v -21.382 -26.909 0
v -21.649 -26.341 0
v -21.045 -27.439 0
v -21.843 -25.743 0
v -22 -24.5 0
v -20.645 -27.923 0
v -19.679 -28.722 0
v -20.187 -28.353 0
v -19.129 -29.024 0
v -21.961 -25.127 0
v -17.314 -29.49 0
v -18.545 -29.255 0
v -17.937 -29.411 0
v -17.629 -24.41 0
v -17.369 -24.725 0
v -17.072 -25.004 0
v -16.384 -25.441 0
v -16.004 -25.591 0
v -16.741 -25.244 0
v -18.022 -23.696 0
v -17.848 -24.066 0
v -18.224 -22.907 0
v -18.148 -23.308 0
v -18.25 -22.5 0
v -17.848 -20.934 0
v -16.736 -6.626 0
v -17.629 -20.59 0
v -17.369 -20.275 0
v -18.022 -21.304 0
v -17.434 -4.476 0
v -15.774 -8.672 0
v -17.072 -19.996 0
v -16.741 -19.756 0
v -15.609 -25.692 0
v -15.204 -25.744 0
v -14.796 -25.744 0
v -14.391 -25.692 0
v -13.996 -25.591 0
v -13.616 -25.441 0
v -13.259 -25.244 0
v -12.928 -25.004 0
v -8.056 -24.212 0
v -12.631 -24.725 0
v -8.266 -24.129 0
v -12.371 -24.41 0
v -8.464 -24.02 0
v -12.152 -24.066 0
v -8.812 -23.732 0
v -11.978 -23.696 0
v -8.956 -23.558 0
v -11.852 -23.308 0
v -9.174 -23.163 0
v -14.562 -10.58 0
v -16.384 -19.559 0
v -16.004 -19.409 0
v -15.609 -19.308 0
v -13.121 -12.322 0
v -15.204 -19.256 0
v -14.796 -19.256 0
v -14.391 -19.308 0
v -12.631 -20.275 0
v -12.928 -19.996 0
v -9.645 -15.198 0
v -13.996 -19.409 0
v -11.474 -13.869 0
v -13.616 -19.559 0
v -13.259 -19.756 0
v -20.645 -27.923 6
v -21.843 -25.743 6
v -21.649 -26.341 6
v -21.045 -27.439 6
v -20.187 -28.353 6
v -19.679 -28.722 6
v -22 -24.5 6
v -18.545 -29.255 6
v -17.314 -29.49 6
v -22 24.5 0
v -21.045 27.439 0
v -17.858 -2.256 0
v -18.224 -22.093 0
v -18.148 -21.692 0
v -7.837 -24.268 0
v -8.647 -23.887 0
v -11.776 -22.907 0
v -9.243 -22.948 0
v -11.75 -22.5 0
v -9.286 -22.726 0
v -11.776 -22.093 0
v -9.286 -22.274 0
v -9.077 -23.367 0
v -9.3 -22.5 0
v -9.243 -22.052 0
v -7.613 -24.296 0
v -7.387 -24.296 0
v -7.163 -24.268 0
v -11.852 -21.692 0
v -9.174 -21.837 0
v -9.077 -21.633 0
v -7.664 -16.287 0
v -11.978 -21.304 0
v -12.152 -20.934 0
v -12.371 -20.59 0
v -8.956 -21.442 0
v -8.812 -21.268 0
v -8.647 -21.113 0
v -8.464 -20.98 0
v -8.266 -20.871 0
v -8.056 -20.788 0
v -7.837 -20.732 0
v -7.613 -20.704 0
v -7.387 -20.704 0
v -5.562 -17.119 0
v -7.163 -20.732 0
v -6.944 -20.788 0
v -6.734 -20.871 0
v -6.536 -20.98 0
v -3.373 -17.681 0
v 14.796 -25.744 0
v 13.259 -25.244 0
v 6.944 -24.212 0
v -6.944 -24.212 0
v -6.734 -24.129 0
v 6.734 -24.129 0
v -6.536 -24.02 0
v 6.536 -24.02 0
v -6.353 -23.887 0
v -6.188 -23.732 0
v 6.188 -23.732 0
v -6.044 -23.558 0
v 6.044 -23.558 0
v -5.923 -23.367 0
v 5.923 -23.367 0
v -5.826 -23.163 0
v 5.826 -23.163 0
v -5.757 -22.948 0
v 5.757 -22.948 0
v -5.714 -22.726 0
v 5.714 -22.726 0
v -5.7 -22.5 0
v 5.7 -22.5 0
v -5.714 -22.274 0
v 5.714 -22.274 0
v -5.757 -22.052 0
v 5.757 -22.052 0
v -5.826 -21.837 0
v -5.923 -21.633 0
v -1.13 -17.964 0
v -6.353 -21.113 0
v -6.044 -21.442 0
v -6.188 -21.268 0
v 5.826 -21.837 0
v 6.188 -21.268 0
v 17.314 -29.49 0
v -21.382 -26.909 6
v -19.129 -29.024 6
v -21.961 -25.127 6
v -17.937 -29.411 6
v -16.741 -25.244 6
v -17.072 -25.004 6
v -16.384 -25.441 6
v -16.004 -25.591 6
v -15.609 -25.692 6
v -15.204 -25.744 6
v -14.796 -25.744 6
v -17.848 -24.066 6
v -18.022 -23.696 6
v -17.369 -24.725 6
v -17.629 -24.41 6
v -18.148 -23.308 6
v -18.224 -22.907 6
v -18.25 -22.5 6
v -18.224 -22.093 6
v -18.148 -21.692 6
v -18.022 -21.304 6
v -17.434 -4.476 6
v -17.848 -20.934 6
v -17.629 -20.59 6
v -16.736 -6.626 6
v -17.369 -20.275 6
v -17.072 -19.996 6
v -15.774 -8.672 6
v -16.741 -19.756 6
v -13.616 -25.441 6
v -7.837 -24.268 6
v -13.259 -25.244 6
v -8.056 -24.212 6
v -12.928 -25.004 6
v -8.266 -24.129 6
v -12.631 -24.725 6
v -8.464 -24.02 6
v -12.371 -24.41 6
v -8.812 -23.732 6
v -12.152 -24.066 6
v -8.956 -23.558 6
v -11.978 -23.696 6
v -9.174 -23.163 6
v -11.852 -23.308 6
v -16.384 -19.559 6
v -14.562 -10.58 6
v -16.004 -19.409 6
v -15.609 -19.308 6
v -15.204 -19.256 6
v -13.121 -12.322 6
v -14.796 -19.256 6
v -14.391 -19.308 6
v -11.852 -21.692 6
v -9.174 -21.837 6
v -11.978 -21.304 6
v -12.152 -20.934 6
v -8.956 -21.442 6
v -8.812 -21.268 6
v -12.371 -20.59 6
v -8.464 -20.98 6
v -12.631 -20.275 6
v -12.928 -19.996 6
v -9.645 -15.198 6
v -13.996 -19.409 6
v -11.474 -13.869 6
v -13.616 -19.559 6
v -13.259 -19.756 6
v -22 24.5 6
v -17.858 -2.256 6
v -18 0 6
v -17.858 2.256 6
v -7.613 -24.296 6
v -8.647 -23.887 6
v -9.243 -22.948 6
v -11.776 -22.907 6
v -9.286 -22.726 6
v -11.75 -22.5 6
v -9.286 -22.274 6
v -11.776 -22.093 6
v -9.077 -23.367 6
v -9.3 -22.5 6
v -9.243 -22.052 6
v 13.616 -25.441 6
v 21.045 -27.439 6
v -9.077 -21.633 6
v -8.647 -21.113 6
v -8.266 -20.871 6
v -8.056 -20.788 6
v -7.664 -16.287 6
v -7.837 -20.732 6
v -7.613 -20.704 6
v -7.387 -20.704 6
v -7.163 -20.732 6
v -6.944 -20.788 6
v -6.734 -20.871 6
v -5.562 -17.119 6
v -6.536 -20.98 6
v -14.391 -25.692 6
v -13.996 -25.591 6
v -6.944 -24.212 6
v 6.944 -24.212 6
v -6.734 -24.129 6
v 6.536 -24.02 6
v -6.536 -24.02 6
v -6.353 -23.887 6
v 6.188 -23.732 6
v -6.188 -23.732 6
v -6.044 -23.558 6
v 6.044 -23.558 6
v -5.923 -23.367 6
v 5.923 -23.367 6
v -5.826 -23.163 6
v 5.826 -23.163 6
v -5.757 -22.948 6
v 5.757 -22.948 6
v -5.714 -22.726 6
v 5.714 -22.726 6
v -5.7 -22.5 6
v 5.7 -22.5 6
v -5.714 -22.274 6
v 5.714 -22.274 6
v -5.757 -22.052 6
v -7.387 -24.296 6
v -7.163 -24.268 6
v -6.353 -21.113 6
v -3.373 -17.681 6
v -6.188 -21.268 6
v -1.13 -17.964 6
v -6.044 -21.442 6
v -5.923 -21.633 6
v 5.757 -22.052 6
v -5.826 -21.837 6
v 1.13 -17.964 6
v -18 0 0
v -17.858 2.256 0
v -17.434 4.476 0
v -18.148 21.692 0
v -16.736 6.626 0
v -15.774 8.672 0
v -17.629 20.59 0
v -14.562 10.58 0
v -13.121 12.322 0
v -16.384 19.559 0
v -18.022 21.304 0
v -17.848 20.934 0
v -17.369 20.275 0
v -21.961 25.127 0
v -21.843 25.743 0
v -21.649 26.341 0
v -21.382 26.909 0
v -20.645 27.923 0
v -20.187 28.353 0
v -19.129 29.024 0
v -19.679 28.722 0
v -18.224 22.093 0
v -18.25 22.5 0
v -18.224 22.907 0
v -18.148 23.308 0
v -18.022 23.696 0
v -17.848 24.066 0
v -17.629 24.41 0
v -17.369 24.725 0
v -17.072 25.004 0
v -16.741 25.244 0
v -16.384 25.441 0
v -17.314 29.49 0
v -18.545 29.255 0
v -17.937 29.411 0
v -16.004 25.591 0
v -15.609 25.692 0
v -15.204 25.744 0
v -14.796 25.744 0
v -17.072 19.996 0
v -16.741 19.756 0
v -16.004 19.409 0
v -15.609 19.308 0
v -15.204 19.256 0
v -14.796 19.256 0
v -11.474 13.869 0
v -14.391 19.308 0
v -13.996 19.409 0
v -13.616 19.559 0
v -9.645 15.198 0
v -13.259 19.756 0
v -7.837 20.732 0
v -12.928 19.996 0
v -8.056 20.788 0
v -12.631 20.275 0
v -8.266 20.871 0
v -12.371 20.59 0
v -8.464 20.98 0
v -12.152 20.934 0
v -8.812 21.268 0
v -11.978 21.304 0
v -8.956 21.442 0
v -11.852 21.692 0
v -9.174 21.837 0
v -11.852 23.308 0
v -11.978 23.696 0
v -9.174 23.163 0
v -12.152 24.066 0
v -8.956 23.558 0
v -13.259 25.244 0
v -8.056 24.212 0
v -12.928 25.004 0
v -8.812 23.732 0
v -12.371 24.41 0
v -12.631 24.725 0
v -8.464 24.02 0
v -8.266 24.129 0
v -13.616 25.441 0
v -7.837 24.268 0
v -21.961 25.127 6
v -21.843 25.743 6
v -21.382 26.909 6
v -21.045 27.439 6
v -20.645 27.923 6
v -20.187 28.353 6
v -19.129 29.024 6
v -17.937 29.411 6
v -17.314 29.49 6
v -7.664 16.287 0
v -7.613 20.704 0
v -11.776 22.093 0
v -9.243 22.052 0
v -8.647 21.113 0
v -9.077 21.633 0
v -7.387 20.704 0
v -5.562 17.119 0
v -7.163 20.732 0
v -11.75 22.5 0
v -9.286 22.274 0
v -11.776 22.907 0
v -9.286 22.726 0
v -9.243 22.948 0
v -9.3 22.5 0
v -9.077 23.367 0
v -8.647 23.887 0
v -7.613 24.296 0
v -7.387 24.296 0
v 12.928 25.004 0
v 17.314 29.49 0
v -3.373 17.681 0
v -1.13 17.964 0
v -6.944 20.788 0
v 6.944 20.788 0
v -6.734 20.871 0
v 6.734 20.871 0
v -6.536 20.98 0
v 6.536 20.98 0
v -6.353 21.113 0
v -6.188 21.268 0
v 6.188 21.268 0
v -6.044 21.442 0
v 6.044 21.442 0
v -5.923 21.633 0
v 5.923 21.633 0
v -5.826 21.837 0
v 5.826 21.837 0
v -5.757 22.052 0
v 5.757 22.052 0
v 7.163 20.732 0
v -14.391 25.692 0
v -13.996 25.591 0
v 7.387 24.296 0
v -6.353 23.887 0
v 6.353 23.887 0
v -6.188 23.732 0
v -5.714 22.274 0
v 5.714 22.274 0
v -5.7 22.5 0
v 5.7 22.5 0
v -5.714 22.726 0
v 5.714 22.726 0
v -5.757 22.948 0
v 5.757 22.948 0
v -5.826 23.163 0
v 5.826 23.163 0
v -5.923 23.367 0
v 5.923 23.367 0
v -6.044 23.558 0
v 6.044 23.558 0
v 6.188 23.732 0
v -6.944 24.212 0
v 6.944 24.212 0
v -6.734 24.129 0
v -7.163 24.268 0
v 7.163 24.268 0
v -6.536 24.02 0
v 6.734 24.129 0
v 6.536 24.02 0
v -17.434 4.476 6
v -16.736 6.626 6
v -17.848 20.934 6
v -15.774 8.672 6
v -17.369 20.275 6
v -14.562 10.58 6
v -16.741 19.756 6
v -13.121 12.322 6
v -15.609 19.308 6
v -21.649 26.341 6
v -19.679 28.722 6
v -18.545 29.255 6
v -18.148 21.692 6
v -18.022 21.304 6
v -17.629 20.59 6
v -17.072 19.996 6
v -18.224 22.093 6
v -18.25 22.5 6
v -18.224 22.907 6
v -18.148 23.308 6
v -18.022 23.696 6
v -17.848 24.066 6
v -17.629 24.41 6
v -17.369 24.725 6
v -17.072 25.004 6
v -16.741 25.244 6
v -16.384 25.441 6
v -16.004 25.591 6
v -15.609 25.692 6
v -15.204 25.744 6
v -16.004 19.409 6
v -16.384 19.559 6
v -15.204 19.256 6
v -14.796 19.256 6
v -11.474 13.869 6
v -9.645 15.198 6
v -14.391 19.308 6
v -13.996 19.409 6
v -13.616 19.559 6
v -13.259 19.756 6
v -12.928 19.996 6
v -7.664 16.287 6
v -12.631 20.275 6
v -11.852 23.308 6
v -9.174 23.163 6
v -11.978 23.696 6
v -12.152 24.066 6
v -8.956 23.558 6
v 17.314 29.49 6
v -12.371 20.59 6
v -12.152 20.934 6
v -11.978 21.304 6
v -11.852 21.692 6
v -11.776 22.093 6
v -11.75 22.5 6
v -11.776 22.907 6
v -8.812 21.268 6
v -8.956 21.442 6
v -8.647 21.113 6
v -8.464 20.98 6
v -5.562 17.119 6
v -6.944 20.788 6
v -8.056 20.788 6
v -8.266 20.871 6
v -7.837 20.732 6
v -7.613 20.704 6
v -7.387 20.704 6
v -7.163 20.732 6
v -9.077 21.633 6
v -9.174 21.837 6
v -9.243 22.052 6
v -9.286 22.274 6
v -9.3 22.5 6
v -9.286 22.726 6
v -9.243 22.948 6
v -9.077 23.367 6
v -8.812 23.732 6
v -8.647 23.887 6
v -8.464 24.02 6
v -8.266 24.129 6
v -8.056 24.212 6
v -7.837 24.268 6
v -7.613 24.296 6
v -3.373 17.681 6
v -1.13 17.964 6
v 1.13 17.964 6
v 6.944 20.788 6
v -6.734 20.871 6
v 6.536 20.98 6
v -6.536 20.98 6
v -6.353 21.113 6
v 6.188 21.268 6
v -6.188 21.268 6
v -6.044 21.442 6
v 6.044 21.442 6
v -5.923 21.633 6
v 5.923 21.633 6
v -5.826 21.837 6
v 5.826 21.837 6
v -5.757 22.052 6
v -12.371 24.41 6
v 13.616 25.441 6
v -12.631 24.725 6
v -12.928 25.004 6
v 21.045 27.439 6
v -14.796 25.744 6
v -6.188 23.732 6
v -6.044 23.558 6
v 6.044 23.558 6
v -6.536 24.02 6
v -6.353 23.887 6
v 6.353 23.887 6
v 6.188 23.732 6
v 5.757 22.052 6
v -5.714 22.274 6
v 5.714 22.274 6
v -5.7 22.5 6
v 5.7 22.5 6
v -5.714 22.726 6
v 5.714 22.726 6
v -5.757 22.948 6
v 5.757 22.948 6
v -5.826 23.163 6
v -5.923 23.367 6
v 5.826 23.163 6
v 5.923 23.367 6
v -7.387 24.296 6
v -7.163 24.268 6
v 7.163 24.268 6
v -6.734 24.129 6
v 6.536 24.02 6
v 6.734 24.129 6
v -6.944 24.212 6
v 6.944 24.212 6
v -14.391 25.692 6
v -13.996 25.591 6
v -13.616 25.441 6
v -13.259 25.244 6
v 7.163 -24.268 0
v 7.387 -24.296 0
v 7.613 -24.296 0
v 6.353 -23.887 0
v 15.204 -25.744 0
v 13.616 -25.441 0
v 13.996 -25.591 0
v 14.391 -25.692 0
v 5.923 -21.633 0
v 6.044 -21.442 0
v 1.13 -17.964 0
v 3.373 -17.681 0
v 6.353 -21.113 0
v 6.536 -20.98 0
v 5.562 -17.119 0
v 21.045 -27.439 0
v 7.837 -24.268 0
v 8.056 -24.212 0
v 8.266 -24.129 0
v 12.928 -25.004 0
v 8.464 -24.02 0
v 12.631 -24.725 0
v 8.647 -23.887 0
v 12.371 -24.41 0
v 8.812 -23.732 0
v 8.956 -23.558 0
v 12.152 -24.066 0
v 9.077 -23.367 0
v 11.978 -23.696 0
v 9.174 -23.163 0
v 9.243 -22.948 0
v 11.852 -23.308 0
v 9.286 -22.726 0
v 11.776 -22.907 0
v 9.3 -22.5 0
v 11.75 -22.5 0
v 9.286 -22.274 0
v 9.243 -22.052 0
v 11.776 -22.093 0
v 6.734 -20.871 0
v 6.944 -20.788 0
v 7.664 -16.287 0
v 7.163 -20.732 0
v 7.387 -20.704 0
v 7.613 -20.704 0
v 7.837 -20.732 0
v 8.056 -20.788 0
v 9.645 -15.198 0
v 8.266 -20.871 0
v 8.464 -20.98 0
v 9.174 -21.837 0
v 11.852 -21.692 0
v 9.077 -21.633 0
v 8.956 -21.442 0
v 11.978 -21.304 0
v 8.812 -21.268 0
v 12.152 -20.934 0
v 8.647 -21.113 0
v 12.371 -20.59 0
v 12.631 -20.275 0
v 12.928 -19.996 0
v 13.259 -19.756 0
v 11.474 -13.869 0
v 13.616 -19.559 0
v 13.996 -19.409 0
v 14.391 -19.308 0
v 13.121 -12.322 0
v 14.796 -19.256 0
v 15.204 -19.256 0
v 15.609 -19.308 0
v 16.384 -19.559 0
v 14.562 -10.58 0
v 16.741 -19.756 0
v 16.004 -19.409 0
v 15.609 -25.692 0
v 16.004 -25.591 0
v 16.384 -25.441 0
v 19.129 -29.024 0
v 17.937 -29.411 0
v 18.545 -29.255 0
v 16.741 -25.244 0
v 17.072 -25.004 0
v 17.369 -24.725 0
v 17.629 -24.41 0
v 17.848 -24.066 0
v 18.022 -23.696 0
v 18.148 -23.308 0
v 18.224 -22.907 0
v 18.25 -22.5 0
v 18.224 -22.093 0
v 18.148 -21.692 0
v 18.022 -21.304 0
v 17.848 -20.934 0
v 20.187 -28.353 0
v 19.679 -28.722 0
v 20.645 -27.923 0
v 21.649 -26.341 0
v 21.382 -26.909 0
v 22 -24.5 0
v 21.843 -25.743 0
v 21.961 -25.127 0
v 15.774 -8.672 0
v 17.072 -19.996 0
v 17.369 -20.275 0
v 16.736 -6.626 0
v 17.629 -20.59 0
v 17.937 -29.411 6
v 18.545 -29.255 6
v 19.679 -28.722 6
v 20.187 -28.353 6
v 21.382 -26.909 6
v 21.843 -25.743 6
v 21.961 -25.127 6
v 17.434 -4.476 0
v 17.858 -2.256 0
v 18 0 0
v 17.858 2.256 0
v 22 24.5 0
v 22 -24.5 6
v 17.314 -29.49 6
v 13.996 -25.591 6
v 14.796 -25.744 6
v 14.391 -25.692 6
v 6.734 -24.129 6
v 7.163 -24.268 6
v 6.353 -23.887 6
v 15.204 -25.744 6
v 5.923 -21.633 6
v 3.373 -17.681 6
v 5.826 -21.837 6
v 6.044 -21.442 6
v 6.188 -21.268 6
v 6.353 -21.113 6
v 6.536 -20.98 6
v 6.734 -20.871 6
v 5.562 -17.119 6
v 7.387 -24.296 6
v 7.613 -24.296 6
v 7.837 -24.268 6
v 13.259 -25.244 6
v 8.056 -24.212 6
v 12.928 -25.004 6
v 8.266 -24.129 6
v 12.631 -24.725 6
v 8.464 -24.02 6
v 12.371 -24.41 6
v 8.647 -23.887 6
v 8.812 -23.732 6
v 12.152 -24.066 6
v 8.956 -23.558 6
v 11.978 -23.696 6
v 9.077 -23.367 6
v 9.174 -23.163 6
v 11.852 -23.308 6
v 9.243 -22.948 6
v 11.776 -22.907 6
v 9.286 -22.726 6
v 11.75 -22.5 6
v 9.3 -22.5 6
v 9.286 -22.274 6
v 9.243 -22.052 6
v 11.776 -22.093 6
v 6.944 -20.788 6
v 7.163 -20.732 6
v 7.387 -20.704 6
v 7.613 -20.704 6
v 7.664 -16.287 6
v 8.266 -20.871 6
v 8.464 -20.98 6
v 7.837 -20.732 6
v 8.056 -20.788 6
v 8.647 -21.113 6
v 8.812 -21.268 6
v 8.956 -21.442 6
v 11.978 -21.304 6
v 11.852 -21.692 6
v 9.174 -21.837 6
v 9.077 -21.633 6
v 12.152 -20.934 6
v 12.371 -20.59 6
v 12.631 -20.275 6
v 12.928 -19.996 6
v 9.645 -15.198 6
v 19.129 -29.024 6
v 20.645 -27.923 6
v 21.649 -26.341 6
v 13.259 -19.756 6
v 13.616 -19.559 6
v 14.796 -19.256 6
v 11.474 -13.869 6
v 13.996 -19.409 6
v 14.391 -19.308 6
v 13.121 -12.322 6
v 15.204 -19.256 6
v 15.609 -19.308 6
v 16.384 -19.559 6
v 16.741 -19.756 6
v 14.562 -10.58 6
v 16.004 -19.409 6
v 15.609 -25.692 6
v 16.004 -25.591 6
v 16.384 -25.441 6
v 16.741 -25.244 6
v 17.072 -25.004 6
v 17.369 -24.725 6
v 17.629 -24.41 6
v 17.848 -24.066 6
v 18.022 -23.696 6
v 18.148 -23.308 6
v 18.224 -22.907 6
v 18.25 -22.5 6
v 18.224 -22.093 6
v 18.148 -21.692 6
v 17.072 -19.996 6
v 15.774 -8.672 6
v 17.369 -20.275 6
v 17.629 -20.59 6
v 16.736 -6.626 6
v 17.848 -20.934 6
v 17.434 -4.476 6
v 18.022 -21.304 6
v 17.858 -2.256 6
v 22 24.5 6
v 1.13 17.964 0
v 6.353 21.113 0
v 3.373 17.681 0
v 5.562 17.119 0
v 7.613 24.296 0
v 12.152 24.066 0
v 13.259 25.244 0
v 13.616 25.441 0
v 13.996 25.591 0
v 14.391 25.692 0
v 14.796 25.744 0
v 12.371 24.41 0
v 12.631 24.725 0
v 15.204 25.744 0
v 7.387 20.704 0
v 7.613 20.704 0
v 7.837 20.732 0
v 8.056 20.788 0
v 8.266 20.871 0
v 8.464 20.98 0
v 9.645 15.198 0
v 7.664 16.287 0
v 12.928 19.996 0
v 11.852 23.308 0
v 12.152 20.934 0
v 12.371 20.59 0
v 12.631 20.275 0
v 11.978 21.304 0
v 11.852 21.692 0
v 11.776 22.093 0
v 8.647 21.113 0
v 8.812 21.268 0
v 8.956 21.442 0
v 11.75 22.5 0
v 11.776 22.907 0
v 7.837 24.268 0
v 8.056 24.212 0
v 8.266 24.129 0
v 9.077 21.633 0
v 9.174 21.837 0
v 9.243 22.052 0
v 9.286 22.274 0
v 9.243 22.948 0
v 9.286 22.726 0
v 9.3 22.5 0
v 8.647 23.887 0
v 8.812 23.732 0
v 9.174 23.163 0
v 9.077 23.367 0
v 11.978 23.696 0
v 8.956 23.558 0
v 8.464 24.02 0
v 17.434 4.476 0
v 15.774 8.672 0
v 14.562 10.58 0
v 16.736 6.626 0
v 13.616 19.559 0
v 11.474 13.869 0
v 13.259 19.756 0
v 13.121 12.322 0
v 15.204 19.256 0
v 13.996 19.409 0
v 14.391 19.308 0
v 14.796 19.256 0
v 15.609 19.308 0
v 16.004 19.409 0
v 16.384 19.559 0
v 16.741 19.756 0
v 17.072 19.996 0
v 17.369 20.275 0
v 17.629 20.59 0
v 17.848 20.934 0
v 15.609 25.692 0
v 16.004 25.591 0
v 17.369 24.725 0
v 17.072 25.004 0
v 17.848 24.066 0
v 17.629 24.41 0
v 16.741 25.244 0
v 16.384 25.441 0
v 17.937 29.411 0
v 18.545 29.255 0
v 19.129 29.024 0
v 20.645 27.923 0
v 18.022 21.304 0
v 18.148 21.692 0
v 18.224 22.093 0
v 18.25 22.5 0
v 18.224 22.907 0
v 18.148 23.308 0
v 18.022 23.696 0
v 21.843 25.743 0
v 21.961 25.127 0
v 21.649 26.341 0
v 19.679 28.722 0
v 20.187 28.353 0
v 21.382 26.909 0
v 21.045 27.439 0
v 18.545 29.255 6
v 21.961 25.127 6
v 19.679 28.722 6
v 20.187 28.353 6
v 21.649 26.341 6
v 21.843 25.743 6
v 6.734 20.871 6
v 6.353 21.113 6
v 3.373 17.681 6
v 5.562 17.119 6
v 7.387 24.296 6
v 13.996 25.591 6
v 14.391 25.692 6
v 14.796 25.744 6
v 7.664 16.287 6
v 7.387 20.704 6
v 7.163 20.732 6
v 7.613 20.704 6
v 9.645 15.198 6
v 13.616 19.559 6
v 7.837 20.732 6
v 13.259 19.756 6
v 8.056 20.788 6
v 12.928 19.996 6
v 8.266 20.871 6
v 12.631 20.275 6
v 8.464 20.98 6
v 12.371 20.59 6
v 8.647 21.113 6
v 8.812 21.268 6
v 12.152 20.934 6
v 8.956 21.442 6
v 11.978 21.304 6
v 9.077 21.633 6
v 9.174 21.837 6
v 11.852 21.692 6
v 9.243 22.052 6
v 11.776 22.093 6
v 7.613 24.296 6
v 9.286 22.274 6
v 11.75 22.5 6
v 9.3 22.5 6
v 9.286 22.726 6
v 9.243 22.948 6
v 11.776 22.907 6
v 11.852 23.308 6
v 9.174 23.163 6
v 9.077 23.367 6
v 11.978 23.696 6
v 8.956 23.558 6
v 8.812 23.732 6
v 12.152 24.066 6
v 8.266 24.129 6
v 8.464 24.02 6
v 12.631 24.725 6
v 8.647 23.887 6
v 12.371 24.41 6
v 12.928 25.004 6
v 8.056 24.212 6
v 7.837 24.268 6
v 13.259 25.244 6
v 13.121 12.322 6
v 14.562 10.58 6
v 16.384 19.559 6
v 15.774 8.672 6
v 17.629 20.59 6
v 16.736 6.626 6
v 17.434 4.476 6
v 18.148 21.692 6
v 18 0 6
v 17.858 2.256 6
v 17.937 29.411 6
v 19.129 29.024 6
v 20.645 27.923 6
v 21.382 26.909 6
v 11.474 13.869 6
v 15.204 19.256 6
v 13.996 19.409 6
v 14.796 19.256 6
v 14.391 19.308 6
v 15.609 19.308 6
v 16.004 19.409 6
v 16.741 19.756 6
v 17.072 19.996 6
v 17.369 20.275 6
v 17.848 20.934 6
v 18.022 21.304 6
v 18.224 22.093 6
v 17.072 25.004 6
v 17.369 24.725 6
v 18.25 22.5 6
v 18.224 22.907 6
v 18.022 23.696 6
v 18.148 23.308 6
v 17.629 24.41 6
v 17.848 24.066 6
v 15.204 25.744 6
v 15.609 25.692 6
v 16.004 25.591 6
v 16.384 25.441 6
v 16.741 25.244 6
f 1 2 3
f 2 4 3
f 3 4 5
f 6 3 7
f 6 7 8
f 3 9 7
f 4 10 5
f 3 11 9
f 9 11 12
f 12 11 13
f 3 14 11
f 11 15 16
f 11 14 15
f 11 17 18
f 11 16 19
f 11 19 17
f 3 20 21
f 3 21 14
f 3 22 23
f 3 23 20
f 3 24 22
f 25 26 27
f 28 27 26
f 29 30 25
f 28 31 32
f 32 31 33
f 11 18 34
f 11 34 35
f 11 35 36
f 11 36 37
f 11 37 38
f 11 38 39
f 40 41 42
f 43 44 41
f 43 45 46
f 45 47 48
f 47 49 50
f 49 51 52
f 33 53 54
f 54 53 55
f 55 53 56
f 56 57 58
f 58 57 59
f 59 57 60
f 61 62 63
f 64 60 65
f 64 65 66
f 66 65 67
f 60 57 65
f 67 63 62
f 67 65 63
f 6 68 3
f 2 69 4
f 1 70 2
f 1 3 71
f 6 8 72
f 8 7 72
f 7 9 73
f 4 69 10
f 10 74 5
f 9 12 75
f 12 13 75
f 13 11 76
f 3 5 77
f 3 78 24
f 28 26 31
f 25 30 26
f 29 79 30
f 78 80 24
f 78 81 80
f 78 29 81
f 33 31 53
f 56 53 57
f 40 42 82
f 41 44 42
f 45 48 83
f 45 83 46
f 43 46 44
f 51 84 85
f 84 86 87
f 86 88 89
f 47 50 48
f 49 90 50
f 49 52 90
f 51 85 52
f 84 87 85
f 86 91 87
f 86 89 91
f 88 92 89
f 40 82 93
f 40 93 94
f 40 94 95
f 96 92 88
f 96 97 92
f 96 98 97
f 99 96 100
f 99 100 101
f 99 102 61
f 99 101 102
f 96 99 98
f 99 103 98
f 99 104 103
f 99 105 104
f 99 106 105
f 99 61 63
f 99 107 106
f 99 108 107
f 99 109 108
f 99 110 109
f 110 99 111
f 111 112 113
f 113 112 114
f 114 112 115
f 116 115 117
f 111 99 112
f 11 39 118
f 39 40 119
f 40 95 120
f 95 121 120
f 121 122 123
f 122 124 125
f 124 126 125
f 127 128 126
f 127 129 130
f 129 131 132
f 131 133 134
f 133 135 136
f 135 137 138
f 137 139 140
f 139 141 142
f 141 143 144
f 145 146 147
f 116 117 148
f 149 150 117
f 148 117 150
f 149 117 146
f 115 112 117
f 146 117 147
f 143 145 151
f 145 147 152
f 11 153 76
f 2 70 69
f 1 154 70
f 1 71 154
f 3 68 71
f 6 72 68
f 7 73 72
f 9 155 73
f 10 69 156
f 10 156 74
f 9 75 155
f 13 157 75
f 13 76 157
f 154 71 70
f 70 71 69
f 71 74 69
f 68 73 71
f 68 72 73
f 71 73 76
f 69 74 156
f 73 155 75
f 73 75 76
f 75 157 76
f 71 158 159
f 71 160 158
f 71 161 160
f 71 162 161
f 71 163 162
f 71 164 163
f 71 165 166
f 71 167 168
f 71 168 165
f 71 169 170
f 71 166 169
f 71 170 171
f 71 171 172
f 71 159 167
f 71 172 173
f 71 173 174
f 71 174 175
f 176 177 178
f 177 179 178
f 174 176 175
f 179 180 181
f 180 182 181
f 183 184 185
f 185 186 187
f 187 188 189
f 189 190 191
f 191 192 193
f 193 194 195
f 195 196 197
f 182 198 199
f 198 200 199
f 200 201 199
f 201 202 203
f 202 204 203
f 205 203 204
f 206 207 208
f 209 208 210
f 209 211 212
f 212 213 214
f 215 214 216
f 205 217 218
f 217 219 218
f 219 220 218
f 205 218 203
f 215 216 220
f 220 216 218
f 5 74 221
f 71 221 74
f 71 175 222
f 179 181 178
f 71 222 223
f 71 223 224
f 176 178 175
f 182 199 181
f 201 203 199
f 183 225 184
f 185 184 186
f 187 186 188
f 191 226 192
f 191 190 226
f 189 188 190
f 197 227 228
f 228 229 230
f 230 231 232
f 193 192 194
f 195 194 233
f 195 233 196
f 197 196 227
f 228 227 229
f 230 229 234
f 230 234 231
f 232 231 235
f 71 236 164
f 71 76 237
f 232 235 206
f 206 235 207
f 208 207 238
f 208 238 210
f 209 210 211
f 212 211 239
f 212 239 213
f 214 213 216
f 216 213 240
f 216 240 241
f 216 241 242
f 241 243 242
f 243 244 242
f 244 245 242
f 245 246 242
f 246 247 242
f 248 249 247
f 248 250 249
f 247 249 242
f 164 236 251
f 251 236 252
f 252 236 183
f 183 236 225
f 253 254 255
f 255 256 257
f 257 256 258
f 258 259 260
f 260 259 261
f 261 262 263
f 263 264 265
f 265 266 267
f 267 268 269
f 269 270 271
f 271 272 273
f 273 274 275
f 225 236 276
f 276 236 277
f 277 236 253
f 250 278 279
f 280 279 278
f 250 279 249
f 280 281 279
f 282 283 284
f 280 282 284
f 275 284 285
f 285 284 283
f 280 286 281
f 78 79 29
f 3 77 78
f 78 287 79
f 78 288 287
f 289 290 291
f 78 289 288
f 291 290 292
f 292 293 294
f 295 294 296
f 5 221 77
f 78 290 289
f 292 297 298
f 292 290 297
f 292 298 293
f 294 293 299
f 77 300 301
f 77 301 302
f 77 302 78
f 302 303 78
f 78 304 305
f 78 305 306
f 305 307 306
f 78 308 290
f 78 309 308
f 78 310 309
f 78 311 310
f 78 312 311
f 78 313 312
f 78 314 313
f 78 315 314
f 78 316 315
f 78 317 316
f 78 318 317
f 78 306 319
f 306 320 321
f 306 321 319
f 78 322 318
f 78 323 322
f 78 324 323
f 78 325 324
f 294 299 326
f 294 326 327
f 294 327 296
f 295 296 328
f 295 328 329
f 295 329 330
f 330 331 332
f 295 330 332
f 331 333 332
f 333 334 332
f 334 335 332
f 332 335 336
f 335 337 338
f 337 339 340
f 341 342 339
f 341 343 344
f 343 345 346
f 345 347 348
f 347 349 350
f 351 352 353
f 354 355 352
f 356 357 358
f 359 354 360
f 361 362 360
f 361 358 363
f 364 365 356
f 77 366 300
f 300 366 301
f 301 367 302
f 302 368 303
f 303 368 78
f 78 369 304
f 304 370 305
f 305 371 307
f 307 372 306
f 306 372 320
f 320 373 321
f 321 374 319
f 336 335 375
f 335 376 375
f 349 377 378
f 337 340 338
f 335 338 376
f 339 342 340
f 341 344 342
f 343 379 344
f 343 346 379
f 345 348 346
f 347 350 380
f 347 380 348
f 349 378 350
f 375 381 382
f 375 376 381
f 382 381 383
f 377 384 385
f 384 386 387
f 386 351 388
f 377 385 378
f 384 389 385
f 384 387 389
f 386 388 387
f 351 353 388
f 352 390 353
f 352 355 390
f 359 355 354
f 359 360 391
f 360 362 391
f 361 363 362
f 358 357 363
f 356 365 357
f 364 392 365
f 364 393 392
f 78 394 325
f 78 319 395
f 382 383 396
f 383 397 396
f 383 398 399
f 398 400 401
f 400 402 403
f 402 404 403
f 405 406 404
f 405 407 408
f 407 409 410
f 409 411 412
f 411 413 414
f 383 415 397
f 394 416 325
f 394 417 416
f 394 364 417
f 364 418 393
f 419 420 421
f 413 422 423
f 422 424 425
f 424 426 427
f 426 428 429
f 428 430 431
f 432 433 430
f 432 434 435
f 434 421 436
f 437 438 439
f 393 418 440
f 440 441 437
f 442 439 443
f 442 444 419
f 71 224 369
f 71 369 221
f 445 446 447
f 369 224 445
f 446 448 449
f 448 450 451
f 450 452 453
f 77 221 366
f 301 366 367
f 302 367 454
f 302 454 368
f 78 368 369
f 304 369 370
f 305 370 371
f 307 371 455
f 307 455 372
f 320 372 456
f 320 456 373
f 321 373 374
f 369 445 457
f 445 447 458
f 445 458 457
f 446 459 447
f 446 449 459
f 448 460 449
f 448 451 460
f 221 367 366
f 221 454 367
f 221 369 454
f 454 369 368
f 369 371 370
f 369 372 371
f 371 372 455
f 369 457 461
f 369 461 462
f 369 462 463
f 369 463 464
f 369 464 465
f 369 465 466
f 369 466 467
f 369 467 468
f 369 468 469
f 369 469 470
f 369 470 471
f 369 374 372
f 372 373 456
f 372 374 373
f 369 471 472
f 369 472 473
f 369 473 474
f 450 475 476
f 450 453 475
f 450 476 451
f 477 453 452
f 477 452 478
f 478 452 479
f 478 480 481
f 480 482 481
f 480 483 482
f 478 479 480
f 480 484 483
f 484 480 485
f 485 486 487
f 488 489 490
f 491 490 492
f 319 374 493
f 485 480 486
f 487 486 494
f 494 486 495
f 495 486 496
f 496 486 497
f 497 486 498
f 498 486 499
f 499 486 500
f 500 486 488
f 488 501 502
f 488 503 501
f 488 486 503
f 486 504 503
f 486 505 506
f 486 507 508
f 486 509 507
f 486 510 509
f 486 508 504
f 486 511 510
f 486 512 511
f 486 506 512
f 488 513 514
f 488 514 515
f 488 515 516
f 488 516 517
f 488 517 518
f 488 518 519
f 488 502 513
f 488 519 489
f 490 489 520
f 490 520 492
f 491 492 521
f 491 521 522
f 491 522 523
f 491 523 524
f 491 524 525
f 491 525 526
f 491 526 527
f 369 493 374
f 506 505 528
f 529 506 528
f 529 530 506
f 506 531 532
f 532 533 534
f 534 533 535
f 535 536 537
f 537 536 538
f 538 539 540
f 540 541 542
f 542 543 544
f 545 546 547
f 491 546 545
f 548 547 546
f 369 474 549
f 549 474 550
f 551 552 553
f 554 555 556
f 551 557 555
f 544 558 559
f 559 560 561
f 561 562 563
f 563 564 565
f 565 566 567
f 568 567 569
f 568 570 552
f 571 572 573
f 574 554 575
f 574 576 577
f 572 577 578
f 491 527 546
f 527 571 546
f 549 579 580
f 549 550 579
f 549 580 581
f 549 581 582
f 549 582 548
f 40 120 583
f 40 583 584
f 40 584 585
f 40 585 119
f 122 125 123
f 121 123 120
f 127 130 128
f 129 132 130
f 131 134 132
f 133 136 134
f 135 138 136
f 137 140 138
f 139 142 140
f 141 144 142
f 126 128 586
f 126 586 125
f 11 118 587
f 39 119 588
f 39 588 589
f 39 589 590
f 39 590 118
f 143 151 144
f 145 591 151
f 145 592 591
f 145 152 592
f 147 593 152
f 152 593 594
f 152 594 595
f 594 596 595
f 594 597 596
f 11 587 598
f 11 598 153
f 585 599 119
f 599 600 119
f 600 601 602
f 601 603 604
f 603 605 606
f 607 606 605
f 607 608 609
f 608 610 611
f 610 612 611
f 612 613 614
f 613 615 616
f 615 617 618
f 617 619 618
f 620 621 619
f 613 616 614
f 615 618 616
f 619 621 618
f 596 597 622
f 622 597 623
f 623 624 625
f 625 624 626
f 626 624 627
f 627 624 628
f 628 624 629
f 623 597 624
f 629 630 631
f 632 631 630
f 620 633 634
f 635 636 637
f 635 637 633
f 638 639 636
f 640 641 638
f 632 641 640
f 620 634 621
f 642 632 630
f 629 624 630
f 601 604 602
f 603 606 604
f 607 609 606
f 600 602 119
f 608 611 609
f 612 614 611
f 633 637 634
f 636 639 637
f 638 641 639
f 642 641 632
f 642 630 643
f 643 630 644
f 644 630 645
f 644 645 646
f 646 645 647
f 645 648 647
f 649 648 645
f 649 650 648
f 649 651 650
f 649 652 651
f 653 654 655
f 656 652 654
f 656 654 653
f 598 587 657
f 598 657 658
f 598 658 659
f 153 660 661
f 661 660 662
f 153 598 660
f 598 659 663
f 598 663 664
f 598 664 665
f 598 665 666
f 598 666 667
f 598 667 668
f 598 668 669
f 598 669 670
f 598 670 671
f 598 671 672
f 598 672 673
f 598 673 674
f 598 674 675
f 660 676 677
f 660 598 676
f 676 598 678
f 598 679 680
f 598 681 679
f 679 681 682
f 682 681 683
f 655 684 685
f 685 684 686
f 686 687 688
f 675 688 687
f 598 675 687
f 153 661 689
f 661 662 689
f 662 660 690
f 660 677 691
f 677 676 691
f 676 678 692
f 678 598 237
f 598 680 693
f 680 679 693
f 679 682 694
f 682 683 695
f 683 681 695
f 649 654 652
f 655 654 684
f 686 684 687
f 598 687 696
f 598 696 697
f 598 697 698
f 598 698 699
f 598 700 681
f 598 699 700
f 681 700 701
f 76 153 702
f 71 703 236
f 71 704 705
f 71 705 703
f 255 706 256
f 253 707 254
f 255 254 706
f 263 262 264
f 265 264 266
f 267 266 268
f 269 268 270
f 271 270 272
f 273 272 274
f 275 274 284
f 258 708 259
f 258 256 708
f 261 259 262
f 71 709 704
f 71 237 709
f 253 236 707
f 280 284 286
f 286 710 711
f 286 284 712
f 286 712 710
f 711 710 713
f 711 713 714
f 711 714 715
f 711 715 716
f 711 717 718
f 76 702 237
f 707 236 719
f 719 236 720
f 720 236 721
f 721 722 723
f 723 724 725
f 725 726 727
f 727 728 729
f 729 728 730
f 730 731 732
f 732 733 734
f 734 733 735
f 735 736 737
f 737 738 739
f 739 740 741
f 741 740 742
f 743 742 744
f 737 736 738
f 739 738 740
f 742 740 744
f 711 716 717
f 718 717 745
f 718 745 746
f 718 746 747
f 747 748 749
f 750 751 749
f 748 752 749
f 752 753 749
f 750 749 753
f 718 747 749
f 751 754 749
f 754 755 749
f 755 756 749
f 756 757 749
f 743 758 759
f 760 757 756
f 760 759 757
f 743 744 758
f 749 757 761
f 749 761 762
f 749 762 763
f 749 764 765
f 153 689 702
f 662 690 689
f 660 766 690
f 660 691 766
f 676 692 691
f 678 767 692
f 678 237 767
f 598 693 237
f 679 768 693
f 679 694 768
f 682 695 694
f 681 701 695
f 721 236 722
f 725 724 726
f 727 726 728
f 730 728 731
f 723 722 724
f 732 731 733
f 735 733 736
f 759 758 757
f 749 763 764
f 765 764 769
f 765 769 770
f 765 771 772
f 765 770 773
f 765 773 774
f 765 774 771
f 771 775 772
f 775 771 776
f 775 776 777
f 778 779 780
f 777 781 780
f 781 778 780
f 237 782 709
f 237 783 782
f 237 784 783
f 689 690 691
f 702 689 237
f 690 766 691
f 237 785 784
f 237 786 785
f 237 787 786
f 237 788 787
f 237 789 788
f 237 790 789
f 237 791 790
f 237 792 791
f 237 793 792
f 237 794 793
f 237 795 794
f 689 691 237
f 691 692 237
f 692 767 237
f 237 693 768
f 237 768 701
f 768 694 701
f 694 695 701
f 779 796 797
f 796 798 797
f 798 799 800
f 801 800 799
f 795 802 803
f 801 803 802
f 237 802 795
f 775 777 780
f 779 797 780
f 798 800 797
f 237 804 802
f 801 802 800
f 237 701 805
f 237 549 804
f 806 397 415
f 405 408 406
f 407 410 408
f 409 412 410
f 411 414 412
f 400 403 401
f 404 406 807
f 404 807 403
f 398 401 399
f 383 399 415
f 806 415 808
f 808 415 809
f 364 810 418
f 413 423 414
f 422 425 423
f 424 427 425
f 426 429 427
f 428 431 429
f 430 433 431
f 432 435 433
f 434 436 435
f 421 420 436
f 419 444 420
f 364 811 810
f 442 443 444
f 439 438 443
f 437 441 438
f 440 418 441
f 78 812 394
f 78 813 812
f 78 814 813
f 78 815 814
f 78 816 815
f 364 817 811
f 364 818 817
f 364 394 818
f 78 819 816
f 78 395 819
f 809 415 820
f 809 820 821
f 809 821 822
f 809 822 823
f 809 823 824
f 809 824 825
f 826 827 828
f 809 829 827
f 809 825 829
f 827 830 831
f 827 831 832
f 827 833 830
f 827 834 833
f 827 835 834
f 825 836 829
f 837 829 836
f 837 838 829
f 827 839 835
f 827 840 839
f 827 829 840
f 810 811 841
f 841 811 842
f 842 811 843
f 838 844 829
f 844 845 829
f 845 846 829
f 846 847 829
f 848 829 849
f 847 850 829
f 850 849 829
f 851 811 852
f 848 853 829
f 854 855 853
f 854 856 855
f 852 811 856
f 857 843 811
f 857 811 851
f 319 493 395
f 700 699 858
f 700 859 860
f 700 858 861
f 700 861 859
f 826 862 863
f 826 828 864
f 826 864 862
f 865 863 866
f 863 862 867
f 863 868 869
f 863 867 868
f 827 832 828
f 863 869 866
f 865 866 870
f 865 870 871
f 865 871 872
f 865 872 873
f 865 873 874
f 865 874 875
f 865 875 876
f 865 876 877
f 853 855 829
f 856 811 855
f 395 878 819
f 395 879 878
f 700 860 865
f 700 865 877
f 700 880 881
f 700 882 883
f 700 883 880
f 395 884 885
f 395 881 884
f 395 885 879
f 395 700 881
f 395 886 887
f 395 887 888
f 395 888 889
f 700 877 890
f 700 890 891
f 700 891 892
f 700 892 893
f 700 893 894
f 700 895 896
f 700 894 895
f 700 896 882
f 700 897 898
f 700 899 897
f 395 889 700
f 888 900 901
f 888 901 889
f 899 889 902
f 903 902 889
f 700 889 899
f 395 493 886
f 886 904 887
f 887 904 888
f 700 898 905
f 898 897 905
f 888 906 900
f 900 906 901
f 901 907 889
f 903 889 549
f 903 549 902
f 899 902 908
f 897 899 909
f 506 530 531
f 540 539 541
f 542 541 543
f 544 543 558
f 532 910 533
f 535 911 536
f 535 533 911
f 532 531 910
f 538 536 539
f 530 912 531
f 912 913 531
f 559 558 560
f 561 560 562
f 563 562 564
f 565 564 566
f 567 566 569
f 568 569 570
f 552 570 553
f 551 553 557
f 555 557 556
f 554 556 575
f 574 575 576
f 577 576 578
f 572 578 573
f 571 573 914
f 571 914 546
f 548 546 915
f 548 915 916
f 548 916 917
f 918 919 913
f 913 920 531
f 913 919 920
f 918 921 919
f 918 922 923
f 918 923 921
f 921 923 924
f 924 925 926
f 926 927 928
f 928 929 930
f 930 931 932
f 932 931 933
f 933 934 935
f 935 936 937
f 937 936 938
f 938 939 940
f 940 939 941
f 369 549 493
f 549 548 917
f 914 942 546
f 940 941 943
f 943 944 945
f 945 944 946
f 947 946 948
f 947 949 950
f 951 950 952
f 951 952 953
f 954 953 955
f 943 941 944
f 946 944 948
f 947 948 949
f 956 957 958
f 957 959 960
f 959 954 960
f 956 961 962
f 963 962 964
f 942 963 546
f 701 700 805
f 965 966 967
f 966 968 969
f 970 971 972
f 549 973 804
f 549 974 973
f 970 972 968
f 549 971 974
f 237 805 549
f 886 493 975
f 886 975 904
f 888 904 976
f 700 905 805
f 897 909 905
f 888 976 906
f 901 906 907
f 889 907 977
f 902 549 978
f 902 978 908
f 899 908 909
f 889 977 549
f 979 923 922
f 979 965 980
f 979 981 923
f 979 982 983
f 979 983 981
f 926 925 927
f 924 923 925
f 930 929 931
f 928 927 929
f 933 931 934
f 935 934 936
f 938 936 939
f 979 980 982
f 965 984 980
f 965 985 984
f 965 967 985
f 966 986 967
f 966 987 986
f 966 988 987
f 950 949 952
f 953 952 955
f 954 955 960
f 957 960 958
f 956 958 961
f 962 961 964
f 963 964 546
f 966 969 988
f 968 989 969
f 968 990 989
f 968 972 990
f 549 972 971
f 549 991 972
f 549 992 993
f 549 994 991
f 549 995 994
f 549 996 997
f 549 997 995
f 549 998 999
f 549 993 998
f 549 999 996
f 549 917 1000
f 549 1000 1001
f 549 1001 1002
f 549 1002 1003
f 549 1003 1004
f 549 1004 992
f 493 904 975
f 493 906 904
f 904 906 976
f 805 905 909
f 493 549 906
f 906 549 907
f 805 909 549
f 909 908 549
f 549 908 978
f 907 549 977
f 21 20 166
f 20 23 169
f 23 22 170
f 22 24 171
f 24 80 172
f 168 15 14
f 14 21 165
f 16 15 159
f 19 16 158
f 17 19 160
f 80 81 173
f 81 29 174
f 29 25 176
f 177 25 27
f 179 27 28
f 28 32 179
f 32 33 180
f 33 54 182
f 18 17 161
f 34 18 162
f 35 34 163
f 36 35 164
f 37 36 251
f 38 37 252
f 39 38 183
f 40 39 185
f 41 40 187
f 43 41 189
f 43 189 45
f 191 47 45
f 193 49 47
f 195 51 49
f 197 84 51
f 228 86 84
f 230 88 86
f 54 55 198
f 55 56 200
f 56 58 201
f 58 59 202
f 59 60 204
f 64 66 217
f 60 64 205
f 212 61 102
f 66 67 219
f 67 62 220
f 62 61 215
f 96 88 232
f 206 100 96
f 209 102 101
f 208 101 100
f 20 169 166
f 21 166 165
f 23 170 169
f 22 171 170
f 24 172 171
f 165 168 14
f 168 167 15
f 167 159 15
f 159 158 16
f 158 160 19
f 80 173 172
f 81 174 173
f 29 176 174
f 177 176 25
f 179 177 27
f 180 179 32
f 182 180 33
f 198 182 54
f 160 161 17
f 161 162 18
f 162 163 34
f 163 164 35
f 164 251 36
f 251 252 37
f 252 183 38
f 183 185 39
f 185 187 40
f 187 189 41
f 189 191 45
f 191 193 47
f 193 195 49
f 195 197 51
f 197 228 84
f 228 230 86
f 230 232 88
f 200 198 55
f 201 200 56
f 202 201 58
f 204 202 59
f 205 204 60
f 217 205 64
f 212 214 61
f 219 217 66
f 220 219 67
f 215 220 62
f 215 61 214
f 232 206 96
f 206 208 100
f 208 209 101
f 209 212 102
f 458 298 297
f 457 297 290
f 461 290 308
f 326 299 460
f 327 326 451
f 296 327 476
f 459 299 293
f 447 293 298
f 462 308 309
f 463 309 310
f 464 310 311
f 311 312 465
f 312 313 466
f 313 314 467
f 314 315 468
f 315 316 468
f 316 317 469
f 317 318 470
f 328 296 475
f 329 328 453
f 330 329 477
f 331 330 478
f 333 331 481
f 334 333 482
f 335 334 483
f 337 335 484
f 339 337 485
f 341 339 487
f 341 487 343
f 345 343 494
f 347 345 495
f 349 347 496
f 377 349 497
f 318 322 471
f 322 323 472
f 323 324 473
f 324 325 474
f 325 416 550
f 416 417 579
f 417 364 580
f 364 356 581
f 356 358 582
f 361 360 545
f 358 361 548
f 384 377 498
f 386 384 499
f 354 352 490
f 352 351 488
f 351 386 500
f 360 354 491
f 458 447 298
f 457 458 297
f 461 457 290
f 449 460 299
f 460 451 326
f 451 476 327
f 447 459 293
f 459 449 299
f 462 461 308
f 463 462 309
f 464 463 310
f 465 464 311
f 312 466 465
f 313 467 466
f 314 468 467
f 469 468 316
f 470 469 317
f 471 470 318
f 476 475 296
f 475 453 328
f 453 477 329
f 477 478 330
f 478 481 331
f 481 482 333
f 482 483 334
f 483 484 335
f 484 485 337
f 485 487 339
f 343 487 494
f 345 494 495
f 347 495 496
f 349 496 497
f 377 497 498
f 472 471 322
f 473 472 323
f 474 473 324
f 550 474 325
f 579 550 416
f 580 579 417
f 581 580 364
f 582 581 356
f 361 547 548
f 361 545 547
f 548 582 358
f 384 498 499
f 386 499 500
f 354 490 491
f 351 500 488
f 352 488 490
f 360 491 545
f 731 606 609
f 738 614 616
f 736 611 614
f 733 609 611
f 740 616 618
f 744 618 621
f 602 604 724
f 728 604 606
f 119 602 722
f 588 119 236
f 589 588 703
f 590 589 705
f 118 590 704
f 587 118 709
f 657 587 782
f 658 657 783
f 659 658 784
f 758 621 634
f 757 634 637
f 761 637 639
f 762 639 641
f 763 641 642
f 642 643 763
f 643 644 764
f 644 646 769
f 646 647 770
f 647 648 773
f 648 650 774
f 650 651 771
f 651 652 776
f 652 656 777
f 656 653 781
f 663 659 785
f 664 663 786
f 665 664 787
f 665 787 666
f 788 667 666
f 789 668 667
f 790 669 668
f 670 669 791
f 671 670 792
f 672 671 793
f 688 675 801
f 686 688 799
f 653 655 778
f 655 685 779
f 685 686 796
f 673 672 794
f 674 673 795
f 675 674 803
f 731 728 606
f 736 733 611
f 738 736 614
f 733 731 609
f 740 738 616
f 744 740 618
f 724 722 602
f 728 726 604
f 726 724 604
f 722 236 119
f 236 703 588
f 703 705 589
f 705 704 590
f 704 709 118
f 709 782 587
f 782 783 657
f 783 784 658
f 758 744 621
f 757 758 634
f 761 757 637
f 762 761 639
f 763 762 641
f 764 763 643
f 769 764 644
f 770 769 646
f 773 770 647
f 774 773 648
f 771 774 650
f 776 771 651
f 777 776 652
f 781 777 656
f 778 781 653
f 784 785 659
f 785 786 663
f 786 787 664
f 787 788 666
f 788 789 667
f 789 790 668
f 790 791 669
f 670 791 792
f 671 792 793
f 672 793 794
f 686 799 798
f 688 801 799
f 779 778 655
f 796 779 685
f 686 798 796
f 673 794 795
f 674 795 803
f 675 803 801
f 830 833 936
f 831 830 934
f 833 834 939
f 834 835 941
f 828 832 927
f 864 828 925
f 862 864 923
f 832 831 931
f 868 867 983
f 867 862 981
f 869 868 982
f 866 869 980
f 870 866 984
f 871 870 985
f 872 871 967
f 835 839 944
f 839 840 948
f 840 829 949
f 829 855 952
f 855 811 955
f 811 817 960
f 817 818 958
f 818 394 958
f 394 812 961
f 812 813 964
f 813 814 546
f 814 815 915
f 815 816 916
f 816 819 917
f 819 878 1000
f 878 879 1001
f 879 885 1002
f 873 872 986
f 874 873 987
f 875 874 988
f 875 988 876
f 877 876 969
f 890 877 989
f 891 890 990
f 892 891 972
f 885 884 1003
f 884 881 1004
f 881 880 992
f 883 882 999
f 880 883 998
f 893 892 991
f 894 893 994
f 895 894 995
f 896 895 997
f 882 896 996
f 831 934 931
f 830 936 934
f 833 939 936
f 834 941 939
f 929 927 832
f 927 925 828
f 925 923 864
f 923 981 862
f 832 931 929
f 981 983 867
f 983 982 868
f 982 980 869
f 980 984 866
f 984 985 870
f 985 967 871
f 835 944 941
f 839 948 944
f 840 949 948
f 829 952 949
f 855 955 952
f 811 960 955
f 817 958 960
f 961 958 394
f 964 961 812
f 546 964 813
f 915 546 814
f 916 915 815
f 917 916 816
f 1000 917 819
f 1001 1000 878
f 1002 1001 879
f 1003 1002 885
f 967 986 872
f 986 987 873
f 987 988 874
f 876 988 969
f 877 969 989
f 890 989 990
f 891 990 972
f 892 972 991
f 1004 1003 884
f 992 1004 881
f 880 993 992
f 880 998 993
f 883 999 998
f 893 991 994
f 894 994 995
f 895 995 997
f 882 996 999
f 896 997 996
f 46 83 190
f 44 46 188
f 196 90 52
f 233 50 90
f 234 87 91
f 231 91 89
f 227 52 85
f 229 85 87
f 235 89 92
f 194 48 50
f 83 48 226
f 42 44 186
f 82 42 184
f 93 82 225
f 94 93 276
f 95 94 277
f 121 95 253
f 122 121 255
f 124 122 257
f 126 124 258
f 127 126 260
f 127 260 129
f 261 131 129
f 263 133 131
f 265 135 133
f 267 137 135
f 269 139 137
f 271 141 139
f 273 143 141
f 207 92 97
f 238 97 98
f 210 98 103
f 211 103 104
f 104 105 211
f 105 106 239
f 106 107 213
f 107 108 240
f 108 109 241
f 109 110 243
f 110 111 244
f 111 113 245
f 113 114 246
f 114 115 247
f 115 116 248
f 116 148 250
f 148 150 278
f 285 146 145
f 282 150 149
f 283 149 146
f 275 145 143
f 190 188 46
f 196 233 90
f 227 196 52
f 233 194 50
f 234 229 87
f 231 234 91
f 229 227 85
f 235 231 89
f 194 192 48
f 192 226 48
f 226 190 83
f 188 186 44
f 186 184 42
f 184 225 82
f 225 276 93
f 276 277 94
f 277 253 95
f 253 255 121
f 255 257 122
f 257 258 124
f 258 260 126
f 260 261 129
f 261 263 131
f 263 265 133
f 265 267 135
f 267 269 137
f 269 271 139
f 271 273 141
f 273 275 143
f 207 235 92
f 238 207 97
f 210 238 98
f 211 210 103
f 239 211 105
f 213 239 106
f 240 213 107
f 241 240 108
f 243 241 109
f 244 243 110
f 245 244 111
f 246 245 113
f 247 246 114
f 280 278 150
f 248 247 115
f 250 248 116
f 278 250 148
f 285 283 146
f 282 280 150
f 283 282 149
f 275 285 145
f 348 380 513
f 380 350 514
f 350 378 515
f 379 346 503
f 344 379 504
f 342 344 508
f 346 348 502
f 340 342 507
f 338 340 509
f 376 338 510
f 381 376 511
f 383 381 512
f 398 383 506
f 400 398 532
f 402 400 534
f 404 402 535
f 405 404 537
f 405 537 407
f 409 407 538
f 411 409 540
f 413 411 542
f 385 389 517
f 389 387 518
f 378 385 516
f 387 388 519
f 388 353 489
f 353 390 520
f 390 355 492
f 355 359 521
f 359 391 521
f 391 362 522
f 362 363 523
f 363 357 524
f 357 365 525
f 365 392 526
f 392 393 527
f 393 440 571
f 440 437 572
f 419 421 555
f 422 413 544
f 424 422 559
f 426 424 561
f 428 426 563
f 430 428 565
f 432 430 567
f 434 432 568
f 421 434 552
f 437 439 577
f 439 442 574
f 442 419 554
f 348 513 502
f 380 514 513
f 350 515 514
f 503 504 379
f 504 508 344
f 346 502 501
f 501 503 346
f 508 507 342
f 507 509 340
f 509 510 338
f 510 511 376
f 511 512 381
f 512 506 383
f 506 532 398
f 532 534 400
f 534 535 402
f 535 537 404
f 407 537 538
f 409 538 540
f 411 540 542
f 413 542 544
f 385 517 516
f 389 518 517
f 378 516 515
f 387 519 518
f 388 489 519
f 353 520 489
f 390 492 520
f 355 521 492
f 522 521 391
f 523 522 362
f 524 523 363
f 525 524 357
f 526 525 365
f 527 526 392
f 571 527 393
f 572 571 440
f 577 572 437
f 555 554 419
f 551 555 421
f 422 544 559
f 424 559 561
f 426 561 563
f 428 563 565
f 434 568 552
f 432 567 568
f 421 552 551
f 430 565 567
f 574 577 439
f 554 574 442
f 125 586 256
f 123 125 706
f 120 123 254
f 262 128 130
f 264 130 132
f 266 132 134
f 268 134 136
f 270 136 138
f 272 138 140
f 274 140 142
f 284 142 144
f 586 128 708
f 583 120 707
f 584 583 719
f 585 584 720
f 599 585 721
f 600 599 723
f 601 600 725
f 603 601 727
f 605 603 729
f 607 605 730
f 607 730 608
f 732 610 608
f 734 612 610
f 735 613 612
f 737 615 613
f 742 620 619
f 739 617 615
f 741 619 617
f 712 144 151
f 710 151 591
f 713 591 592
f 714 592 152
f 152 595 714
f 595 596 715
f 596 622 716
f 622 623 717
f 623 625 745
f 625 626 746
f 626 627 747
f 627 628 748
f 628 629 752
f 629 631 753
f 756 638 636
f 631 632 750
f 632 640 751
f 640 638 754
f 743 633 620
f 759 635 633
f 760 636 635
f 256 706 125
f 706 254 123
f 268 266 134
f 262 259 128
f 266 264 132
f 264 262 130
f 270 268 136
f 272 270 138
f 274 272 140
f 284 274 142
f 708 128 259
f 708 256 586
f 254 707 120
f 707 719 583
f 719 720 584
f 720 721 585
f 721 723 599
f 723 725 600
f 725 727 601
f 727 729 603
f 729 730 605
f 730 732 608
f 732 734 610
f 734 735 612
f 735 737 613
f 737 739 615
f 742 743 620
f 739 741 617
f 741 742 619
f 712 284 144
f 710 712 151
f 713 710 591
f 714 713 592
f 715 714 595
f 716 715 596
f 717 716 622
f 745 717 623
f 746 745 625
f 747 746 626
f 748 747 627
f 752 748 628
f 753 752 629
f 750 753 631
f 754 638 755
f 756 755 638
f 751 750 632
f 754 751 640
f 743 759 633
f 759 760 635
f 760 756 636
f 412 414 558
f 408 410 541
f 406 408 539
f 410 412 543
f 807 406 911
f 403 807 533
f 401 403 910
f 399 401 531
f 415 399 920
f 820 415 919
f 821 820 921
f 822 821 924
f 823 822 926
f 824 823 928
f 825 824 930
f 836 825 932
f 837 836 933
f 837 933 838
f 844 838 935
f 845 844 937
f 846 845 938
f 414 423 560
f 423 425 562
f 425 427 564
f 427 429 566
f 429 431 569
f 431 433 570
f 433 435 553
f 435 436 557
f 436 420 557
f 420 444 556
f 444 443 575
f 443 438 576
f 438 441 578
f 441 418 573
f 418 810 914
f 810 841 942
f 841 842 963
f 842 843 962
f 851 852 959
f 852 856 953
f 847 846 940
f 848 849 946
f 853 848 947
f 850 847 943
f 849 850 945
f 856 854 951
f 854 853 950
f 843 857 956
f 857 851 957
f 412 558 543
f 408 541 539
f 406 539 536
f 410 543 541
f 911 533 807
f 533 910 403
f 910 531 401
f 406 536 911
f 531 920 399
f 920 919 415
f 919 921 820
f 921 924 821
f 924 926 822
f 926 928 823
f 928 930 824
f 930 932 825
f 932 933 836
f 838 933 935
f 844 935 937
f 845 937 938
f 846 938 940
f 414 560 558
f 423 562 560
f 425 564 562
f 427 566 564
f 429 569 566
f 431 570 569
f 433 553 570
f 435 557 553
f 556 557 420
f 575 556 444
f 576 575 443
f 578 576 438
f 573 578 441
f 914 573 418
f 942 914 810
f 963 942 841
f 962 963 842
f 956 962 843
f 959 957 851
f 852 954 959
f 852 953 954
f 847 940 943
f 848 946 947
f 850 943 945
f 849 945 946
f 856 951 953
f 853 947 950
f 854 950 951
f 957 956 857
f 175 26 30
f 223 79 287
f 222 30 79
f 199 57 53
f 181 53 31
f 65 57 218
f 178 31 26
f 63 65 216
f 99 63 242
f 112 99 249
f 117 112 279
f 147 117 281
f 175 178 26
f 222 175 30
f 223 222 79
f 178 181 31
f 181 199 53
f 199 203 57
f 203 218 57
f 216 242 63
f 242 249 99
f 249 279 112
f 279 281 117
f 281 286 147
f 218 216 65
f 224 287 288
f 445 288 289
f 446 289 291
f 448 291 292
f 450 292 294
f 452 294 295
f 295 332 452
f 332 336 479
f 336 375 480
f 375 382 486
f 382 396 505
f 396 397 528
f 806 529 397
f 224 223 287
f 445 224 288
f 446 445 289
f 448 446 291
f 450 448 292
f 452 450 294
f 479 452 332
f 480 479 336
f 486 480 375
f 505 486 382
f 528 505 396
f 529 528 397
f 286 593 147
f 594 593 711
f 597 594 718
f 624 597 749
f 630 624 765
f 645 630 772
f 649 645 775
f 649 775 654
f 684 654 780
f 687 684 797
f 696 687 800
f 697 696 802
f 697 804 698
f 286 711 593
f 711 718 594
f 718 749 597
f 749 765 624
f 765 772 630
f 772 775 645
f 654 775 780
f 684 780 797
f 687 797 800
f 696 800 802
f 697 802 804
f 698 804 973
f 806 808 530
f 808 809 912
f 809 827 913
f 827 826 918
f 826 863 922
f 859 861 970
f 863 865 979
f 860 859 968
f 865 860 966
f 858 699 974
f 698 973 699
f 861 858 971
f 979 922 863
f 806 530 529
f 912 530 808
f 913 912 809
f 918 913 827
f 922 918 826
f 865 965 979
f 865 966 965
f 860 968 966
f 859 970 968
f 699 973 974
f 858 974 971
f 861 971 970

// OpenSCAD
$fn = 50;

difference() {
	union() {
		hull() {
			translate(v = [-17.0, 24.5, 0]) {
				cylinder(h = 6, r = 5);
			}
			translate(v = [17.0, 24.5, 0]) {
				cylinder(h = 6, r = 5);
			}
			translate(v = [-17.0, -24.5, 0]) {
				cylinder(h = 6, r = 5);
			}
			translate(v = [17.0, -24.5, 0]) {
				cylinder(h = 6, r = 5);
			}
		}
	}
	union() {
		translate(v = [-15.0, -22.5, 0]) {
			cylinder(h = 6, r = 3.25);
		}
		translate(v = [-15.0, 22.5, 0]) {
			cylinder(h = 6, r = 3.25);
		}
		translate(v = [15.0, -22.5, 0]) {
			cylinder(h = 6, r = 3.25);
		}
		translate(v = [15.0, 22.5, 0]) {
			cylinder(h = 6, r = 3.25);
		}
		translate(v = [-7.5, -22.5, 0]) {
			cylinder(h = 6, r = 1.8);
		}
		translate(v = [-7.5, 22.5, 0]) {
			cylinder(h = 6, r = 1.8);
		}
		translate(v = [7.5, -22.5, 0]) {
			cylinder(h = 6, r = 1.8);
		}
		translate(v = [7.5, 22.5, 0]) {
			cylinder(h = 6, r = 1.8);
		}
		cylinder(h = 6, r = 18.0);
	}
}
